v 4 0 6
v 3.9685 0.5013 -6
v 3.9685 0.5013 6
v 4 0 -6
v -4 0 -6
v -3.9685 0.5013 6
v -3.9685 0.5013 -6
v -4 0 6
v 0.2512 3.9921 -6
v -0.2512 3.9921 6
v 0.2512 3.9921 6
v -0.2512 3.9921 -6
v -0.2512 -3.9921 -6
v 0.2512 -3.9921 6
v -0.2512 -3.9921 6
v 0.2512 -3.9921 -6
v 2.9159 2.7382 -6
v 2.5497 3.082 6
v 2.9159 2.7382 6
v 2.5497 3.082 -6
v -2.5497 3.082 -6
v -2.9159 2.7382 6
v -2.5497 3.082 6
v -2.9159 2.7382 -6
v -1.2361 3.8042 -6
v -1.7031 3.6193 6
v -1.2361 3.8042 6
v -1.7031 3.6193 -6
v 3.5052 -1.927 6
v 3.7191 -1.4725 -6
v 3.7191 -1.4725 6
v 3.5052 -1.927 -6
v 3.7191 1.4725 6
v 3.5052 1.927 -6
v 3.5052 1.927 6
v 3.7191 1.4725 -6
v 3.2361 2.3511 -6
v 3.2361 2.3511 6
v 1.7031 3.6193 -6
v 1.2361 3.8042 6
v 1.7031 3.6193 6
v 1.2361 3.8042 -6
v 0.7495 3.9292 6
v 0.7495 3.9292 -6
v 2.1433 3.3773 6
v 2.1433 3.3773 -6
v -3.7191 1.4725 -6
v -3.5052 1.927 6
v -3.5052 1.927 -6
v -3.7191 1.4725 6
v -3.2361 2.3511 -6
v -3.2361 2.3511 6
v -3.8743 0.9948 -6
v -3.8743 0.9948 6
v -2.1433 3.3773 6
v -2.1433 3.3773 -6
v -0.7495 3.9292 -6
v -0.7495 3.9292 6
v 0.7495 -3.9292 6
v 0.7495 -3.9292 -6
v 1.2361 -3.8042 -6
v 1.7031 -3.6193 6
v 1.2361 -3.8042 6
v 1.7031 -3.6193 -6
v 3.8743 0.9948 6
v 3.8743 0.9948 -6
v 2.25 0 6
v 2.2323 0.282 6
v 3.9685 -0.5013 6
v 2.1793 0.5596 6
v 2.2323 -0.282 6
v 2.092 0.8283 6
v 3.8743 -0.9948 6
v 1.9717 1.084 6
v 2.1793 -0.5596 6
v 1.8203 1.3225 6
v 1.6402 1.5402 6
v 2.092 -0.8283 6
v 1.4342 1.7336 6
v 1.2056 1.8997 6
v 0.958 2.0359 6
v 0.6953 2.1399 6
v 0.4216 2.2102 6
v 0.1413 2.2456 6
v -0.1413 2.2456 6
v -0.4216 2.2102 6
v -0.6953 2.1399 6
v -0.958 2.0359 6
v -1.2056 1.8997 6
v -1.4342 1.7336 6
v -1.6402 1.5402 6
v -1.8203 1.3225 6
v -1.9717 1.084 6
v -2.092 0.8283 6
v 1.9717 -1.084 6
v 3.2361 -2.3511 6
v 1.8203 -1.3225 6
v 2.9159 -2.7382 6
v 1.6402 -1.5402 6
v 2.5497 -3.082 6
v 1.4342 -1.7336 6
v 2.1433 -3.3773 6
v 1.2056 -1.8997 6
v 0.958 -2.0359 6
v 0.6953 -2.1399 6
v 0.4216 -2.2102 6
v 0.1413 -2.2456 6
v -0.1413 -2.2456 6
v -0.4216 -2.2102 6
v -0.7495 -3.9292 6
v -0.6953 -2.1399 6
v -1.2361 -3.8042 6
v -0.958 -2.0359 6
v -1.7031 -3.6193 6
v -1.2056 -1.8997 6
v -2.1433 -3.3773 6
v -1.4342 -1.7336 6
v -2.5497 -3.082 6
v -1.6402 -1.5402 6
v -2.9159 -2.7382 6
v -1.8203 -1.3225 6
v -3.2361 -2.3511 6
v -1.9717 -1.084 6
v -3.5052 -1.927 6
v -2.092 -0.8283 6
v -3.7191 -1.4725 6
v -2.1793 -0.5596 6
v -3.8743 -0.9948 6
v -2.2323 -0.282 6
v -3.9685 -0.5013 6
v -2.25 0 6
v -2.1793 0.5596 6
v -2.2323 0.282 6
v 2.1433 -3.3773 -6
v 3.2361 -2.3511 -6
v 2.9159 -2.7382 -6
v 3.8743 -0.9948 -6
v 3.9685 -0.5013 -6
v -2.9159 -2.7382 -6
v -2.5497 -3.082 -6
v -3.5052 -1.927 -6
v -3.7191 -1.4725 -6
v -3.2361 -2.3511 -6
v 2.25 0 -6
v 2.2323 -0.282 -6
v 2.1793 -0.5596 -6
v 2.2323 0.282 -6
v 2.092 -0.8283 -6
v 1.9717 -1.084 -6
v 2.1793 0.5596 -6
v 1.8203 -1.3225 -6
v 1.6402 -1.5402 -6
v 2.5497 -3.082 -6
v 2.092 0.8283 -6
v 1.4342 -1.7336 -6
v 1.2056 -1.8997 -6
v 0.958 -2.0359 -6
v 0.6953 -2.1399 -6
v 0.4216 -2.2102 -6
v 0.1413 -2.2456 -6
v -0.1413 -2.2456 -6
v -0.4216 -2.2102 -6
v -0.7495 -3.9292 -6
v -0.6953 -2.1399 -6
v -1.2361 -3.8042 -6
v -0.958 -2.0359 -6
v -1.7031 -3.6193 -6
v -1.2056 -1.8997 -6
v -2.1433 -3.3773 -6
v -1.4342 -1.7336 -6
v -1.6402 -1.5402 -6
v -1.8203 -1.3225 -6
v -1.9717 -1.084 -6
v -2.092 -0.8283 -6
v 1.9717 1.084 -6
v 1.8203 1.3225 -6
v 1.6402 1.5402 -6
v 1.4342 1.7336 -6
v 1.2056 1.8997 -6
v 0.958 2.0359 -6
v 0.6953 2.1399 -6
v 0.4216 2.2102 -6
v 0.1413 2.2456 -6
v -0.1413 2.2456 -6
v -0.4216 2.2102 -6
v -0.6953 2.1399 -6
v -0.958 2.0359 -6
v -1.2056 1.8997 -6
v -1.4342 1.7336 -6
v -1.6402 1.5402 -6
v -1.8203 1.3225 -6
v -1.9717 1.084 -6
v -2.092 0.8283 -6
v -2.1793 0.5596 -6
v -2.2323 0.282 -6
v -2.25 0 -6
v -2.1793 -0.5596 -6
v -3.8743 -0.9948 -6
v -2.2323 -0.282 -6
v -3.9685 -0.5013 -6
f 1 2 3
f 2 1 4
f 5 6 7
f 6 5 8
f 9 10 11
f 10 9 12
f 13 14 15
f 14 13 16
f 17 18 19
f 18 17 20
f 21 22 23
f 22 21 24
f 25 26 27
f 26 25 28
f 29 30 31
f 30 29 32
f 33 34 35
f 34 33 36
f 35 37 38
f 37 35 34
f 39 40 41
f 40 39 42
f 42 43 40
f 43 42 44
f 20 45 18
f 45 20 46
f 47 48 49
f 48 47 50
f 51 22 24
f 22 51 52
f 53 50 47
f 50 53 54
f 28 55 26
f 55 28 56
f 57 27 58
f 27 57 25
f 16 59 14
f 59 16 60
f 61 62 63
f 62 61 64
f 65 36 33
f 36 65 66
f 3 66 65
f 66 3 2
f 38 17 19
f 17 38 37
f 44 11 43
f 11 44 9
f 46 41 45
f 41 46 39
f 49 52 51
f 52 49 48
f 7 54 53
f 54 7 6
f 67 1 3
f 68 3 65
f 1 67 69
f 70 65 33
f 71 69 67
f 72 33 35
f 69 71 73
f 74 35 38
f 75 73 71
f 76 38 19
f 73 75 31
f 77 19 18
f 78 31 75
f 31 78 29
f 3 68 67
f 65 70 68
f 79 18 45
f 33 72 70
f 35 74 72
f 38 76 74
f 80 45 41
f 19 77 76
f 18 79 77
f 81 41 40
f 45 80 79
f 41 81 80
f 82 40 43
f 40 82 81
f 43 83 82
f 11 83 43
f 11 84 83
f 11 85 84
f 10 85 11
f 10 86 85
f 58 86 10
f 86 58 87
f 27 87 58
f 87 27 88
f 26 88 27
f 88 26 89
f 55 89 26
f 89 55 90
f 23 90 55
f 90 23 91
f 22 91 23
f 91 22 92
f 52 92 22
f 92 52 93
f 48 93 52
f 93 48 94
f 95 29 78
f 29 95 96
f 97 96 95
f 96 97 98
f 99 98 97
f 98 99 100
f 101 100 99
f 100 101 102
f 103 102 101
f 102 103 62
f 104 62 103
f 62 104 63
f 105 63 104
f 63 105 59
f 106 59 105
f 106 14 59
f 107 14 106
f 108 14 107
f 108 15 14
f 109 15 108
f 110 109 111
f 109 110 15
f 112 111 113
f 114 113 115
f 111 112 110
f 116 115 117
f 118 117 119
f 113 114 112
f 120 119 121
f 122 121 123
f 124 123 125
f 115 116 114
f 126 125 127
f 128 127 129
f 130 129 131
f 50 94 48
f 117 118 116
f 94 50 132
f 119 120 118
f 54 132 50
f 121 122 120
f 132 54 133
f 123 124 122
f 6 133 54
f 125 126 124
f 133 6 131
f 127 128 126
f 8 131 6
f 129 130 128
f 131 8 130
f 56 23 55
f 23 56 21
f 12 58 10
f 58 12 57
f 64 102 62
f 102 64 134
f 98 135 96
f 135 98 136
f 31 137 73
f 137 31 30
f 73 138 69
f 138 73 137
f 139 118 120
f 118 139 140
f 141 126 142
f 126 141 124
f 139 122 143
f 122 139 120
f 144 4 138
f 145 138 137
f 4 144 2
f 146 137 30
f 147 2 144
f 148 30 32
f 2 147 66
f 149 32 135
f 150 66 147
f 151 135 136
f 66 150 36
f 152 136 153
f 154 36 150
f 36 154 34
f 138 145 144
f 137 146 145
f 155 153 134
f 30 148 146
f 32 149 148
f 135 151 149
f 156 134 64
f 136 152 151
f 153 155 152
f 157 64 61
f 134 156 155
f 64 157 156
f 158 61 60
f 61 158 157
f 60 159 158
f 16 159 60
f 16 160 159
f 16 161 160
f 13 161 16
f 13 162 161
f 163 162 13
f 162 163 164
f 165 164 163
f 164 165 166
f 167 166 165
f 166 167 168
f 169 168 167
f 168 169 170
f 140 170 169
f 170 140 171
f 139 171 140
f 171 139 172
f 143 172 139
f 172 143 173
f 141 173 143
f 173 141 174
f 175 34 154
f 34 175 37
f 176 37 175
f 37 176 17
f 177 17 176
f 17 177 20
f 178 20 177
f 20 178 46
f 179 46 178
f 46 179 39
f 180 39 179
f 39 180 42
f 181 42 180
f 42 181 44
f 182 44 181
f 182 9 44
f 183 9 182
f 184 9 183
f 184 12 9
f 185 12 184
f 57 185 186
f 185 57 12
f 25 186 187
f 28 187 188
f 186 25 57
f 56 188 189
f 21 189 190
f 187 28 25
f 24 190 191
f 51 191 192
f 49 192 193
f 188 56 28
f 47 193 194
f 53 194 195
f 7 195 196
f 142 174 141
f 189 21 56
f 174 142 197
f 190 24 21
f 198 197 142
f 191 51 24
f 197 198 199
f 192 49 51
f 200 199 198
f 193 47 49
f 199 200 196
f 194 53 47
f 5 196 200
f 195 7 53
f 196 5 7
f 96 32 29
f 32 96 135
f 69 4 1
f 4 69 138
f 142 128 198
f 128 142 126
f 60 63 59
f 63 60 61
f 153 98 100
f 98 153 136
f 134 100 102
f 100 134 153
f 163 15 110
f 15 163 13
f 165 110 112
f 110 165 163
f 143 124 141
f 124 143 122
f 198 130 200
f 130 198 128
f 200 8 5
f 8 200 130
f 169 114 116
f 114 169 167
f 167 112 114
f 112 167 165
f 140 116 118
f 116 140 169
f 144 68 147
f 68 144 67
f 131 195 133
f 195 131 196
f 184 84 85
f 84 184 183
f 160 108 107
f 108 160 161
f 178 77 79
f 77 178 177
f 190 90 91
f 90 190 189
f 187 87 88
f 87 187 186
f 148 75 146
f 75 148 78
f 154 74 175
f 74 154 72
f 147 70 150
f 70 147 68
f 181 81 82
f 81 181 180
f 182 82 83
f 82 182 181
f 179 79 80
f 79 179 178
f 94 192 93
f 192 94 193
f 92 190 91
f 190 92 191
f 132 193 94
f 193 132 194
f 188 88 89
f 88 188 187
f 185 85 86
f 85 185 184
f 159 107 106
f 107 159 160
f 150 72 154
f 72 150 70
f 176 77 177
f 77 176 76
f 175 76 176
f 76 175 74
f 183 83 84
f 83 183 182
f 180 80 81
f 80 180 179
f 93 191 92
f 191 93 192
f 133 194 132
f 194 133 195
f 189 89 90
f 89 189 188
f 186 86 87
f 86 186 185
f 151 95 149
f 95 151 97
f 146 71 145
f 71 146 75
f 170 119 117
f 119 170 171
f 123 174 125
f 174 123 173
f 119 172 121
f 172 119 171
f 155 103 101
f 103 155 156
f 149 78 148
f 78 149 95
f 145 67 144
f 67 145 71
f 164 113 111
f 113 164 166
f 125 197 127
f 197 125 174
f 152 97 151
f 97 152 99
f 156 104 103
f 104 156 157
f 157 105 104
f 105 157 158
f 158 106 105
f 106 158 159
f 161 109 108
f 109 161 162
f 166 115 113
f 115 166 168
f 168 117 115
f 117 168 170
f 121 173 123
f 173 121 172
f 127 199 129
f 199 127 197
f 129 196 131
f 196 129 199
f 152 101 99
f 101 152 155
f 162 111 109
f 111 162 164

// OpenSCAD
$fn = 50;


difference() {
	union() {
		translate(v = [0, 0, -6.0000000000]) {
			cylinder(h = 12, r = 4.0000000000);
		}
	}
	union() {
		translate(v = [0, 0, -100.0000000000]) {
			cylinder(h = 200, r = 2.2500000000);
		}
	}
}
